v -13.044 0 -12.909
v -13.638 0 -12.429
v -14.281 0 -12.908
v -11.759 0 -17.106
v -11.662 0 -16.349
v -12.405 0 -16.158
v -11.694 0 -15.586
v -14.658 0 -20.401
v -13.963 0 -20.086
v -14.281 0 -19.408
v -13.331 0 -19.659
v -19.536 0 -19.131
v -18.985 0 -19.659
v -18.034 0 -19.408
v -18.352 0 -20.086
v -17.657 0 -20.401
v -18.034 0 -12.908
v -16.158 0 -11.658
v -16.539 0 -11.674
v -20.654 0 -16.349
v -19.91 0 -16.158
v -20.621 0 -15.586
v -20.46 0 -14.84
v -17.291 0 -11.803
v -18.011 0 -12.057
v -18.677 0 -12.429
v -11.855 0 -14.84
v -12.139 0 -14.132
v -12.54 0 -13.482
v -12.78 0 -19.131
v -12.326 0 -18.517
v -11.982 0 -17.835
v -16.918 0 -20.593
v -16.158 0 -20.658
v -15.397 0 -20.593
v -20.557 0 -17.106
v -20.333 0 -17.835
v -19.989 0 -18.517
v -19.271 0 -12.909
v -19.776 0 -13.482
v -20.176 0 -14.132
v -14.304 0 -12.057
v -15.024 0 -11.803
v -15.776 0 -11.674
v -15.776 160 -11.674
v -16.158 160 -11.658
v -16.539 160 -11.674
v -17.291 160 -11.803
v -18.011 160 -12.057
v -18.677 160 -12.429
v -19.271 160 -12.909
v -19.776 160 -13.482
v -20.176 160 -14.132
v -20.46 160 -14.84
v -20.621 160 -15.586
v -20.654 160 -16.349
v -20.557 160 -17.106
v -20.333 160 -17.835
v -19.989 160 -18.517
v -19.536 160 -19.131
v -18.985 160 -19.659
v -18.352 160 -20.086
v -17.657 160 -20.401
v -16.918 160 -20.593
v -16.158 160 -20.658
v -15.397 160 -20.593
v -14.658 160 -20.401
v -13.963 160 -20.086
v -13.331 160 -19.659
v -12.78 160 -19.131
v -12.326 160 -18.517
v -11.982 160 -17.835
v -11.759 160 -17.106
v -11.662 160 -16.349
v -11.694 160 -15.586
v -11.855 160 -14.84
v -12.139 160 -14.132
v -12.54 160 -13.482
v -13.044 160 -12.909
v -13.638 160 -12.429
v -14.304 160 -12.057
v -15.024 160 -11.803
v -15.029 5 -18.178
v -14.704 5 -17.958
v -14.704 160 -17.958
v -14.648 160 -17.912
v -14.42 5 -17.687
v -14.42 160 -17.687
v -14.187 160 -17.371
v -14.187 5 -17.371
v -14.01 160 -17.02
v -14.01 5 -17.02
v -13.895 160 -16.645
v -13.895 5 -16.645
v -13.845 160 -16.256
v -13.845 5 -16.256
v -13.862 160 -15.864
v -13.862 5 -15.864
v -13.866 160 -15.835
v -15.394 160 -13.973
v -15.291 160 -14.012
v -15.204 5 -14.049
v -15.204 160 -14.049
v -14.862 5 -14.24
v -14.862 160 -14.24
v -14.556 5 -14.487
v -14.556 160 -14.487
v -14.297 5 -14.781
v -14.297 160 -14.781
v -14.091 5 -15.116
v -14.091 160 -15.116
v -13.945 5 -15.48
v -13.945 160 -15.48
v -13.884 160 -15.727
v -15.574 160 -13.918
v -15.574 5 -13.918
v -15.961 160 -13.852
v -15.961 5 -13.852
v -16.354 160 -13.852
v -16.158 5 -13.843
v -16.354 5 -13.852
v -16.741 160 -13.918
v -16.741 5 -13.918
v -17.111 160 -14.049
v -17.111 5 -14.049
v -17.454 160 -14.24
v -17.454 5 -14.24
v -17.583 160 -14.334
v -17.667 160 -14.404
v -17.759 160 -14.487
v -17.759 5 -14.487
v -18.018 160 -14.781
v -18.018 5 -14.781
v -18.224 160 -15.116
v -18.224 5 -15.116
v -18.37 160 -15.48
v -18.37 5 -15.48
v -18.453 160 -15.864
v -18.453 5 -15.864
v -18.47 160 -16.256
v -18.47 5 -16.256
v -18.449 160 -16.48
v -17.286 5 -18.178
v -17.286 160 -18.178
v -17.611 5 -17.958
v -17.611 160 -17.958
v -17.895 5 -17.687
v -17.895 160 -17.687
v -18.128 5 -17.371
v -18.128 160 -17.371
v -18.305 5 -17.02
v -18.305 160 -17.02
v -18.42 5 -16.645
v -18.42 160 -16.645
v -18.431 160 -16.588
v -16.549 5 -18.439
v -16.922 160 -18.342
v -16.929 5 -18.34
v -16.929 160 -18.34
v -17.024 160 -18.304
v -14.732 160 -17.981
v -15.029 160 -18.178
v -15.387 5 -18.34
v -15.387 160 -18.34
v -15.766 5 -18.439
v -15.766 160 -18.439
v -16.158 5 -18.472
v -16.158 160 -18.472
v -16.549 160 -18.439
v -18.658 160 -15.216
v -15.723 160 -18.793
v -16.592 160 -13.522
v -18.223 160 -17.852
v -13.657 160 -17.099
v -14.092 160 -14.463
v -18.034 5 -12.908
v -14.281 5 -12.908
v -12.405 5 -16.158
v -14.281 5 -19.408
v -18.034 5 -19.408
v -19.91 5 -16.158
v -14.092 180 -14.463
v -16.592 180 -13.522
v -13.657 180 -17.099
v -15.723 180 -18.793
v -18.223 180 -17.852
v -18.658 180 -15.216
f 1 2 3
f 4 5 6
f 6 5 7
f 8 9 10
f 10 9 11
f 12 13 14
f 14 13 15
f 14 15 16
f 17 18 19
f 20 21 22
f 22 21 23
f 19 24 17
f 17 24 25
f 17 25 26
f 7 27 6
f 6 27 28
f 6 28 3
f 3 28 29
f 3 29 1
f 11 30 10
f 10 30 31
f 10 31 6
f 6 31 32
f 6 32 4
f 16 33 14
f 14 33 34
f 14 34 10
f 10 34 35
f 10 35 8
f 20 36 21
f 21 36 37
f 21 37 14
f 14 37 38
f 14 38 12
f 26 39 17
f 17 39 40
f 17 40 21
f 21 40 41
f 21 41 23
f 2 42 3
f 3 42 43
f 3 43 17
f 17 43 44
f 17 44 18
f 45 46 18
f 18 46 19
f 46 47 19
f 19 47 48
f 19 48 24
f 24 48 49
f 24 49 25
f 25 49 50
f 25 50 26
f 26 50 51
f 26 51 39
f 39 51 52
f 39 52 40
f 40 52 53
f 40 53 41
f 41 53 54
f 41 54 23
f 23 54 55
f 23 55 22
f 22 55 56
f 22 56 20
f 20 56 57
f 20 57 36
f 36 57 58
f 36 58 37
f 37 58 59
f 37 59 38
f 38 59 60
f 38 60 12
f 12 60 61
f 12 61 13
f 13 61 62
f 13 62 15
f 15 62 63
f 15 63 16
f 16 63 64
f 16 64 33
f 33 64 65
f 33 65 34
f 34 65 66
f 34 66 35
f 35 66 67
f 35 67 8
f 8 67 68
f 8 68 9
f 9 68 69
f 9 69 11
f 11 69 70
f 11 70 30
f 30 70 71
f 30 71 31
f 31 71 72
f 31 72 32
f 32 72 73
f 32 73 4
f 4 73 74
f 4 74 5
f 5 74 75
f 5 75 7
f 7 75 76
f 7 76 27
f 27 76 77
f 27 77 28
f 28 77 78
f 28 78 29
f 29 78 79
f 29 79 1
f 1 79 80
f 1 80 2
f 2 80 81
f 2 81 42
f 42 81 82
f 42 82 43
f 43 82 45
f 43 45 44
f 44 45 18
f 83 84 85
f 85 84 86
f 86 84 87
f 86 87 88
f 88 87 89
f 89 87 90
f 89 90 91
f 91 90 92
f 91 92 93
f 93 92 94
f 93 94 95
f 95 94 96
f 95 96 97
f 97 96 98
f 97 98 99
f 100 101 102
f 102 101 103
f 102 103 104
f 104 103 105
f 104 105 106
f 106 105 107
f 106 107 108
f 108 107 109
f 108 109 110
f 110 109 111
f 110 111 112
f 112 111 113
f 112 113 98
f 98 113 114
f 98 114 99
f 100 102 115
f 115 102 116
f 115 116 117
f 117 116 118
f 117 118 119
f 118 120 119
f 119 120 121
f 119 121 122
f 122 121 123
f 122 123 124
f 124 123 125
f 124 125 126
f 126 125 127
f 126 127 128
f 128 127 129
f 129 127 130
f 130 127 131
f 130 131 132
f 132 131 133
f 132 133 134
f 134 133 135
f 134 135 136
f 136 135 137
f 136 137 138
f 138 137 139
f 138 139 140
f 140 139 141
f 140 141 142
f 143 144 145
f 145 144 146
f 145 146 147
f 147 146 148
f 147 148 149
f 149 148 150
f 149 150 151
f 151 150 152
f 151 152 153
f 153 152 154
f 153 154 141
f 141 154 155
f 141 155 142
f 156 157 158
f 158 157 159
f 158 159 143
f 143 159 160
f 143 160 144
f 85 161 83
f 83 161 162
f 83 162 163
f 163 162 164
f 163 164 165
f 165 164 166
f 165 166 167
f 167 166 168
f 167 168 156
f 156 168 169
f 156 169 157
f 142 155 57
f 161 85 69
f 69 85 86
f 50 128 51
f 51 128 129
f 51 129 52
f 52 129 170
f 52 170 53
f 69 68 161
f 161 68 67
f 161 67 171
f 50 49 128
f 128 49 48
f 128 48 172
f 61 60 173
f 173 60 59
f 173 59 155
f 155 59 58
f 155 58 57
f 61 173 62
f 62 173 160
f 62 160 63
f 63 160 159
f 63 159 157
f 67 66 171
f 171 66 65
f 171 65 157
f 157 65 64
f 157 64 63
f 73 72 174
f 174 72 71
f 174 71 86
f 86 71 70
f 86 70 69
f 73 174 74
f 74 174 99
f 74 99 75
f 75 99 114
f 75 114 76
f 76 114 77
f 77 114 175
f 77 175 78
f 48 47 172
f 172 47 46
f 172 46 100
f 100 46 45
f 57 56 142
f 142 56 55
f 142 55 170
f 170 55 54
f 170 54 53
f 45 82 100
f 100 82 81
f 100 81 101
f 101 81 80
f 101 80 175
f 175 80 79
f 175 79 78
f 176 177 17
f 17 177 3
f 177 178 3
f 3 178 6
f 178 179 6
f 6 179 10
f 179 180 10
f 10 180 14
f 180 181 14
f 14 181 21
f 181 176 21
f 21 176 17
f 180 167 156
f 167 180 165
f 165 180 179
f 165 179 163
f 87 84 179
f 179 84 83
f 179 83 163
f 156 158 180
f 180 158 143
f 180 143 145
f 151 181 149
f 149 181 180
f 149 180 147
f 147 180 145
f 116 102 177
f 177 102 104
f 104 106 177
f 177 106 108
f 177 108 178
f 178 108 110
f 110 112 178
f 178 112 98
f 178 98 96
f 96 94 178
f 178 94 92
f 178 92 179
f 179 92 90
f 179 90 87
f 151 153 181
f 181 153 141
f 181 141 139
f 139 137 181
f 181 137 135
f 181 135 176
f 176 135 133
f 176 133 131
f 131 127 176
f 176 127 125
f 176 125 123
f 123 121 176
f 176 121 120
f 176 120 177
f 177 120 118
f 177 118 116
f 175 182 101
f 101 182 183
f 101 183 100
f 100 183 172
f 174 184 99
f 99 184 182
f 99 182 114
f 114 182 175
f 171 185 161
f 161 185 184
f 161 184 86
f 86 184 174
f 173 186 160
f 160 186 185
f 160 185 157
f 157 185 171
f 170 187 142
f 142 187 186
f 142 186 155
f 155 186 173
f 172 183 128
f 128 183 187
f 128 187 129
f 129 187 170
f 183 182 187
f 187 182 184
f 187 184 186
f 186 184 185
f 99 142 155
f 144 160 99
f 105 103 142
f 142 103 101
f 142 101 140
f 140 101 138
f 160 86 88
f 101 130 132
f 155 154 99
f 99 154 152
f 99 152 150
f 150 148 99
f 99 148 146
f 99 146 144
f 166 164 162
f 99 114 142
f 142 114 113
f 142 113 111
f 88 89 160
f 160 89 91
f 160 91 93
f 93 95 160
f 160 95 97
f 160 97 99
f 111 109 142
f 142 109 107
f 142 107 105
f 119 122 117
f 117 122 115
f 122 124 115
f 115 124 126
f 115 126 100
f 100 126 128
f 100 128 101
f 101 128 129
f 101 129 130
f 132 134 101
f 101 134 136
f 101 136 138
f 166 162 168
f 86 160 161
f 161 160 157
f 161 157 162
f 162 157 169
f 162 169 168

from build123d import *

# Parameters (mm, degrees)
SKETCH1_R           = 4.5
SKETCH1_R_2         = 2.314285714
BOSS_EXTRUDE1_DEPTH = 160
SKETCH1_3_R         = 2.314285714
CUT_EXTRUDE1_DEPTH  = 5
BOSS_EXTRUDE2_DEPTH = 20


with BuildPart() as part:
    # Sketch1 → Boss-Extrude1 (new body)
    with BuildSketch(Plane(origin=(0, 0, 0), x_dir=(1, 0, 0), z_dir=(0, 1, 0))):
        with Locations((-16.157558946, 16.157558946)):
            Circle(SKETCH1_R)
        with Locations((-16.157558946, 16.157558946)):
            Circle(SKETCH1_R_2, mode=Mode.SUBTRACT)
    extrude(amount=BOSS_EXTRUDE1_DEPTH)

    # Sketch1<3> → Cut-Extrude1 (cut)
    with BuildSketch(Plane(origin=(0, 0, 0), x_dir=(1, 0, 0), z_dir=(0, 1, 0))):
        Polygon((-14.281170571, 12.907558946), (-12.404782196, 16.157558946), (-14.281170571, 19.407558946), (-18.033947321, 19.407558946), (-19.910335696, 16.157558946), (-18.033947321, 12.907558946), align=None)
        with Locations((-16.157558946, 16.157558946)):
            Circle(SKETCH1_3_R, mode=Mode.SUBTRACT)
    extrude(amount=CUT_EXTRUDE1_DEPTH, mode=Mode.SUBTRACT)

    # Sketch2 → Boss-Extrude2 (add)
    with BuildSketch(Plane(origin=(0, 160, 0), x_dir=(1, 0, 0), z_dir=(0, 1, 0))):
        Polygon((-14.092245618, 14.462942882), (-13.657321721, 17.098864722), (-15.722635049, 18.793480786), (-18.222872273, 17.852175009), (-18.65779617, 15.216253169), (-16.592482843, 13.521637106), align=None)
    extrude(amount=BOSS_EXTRUDE2_DEPTH)


solid = part.part
